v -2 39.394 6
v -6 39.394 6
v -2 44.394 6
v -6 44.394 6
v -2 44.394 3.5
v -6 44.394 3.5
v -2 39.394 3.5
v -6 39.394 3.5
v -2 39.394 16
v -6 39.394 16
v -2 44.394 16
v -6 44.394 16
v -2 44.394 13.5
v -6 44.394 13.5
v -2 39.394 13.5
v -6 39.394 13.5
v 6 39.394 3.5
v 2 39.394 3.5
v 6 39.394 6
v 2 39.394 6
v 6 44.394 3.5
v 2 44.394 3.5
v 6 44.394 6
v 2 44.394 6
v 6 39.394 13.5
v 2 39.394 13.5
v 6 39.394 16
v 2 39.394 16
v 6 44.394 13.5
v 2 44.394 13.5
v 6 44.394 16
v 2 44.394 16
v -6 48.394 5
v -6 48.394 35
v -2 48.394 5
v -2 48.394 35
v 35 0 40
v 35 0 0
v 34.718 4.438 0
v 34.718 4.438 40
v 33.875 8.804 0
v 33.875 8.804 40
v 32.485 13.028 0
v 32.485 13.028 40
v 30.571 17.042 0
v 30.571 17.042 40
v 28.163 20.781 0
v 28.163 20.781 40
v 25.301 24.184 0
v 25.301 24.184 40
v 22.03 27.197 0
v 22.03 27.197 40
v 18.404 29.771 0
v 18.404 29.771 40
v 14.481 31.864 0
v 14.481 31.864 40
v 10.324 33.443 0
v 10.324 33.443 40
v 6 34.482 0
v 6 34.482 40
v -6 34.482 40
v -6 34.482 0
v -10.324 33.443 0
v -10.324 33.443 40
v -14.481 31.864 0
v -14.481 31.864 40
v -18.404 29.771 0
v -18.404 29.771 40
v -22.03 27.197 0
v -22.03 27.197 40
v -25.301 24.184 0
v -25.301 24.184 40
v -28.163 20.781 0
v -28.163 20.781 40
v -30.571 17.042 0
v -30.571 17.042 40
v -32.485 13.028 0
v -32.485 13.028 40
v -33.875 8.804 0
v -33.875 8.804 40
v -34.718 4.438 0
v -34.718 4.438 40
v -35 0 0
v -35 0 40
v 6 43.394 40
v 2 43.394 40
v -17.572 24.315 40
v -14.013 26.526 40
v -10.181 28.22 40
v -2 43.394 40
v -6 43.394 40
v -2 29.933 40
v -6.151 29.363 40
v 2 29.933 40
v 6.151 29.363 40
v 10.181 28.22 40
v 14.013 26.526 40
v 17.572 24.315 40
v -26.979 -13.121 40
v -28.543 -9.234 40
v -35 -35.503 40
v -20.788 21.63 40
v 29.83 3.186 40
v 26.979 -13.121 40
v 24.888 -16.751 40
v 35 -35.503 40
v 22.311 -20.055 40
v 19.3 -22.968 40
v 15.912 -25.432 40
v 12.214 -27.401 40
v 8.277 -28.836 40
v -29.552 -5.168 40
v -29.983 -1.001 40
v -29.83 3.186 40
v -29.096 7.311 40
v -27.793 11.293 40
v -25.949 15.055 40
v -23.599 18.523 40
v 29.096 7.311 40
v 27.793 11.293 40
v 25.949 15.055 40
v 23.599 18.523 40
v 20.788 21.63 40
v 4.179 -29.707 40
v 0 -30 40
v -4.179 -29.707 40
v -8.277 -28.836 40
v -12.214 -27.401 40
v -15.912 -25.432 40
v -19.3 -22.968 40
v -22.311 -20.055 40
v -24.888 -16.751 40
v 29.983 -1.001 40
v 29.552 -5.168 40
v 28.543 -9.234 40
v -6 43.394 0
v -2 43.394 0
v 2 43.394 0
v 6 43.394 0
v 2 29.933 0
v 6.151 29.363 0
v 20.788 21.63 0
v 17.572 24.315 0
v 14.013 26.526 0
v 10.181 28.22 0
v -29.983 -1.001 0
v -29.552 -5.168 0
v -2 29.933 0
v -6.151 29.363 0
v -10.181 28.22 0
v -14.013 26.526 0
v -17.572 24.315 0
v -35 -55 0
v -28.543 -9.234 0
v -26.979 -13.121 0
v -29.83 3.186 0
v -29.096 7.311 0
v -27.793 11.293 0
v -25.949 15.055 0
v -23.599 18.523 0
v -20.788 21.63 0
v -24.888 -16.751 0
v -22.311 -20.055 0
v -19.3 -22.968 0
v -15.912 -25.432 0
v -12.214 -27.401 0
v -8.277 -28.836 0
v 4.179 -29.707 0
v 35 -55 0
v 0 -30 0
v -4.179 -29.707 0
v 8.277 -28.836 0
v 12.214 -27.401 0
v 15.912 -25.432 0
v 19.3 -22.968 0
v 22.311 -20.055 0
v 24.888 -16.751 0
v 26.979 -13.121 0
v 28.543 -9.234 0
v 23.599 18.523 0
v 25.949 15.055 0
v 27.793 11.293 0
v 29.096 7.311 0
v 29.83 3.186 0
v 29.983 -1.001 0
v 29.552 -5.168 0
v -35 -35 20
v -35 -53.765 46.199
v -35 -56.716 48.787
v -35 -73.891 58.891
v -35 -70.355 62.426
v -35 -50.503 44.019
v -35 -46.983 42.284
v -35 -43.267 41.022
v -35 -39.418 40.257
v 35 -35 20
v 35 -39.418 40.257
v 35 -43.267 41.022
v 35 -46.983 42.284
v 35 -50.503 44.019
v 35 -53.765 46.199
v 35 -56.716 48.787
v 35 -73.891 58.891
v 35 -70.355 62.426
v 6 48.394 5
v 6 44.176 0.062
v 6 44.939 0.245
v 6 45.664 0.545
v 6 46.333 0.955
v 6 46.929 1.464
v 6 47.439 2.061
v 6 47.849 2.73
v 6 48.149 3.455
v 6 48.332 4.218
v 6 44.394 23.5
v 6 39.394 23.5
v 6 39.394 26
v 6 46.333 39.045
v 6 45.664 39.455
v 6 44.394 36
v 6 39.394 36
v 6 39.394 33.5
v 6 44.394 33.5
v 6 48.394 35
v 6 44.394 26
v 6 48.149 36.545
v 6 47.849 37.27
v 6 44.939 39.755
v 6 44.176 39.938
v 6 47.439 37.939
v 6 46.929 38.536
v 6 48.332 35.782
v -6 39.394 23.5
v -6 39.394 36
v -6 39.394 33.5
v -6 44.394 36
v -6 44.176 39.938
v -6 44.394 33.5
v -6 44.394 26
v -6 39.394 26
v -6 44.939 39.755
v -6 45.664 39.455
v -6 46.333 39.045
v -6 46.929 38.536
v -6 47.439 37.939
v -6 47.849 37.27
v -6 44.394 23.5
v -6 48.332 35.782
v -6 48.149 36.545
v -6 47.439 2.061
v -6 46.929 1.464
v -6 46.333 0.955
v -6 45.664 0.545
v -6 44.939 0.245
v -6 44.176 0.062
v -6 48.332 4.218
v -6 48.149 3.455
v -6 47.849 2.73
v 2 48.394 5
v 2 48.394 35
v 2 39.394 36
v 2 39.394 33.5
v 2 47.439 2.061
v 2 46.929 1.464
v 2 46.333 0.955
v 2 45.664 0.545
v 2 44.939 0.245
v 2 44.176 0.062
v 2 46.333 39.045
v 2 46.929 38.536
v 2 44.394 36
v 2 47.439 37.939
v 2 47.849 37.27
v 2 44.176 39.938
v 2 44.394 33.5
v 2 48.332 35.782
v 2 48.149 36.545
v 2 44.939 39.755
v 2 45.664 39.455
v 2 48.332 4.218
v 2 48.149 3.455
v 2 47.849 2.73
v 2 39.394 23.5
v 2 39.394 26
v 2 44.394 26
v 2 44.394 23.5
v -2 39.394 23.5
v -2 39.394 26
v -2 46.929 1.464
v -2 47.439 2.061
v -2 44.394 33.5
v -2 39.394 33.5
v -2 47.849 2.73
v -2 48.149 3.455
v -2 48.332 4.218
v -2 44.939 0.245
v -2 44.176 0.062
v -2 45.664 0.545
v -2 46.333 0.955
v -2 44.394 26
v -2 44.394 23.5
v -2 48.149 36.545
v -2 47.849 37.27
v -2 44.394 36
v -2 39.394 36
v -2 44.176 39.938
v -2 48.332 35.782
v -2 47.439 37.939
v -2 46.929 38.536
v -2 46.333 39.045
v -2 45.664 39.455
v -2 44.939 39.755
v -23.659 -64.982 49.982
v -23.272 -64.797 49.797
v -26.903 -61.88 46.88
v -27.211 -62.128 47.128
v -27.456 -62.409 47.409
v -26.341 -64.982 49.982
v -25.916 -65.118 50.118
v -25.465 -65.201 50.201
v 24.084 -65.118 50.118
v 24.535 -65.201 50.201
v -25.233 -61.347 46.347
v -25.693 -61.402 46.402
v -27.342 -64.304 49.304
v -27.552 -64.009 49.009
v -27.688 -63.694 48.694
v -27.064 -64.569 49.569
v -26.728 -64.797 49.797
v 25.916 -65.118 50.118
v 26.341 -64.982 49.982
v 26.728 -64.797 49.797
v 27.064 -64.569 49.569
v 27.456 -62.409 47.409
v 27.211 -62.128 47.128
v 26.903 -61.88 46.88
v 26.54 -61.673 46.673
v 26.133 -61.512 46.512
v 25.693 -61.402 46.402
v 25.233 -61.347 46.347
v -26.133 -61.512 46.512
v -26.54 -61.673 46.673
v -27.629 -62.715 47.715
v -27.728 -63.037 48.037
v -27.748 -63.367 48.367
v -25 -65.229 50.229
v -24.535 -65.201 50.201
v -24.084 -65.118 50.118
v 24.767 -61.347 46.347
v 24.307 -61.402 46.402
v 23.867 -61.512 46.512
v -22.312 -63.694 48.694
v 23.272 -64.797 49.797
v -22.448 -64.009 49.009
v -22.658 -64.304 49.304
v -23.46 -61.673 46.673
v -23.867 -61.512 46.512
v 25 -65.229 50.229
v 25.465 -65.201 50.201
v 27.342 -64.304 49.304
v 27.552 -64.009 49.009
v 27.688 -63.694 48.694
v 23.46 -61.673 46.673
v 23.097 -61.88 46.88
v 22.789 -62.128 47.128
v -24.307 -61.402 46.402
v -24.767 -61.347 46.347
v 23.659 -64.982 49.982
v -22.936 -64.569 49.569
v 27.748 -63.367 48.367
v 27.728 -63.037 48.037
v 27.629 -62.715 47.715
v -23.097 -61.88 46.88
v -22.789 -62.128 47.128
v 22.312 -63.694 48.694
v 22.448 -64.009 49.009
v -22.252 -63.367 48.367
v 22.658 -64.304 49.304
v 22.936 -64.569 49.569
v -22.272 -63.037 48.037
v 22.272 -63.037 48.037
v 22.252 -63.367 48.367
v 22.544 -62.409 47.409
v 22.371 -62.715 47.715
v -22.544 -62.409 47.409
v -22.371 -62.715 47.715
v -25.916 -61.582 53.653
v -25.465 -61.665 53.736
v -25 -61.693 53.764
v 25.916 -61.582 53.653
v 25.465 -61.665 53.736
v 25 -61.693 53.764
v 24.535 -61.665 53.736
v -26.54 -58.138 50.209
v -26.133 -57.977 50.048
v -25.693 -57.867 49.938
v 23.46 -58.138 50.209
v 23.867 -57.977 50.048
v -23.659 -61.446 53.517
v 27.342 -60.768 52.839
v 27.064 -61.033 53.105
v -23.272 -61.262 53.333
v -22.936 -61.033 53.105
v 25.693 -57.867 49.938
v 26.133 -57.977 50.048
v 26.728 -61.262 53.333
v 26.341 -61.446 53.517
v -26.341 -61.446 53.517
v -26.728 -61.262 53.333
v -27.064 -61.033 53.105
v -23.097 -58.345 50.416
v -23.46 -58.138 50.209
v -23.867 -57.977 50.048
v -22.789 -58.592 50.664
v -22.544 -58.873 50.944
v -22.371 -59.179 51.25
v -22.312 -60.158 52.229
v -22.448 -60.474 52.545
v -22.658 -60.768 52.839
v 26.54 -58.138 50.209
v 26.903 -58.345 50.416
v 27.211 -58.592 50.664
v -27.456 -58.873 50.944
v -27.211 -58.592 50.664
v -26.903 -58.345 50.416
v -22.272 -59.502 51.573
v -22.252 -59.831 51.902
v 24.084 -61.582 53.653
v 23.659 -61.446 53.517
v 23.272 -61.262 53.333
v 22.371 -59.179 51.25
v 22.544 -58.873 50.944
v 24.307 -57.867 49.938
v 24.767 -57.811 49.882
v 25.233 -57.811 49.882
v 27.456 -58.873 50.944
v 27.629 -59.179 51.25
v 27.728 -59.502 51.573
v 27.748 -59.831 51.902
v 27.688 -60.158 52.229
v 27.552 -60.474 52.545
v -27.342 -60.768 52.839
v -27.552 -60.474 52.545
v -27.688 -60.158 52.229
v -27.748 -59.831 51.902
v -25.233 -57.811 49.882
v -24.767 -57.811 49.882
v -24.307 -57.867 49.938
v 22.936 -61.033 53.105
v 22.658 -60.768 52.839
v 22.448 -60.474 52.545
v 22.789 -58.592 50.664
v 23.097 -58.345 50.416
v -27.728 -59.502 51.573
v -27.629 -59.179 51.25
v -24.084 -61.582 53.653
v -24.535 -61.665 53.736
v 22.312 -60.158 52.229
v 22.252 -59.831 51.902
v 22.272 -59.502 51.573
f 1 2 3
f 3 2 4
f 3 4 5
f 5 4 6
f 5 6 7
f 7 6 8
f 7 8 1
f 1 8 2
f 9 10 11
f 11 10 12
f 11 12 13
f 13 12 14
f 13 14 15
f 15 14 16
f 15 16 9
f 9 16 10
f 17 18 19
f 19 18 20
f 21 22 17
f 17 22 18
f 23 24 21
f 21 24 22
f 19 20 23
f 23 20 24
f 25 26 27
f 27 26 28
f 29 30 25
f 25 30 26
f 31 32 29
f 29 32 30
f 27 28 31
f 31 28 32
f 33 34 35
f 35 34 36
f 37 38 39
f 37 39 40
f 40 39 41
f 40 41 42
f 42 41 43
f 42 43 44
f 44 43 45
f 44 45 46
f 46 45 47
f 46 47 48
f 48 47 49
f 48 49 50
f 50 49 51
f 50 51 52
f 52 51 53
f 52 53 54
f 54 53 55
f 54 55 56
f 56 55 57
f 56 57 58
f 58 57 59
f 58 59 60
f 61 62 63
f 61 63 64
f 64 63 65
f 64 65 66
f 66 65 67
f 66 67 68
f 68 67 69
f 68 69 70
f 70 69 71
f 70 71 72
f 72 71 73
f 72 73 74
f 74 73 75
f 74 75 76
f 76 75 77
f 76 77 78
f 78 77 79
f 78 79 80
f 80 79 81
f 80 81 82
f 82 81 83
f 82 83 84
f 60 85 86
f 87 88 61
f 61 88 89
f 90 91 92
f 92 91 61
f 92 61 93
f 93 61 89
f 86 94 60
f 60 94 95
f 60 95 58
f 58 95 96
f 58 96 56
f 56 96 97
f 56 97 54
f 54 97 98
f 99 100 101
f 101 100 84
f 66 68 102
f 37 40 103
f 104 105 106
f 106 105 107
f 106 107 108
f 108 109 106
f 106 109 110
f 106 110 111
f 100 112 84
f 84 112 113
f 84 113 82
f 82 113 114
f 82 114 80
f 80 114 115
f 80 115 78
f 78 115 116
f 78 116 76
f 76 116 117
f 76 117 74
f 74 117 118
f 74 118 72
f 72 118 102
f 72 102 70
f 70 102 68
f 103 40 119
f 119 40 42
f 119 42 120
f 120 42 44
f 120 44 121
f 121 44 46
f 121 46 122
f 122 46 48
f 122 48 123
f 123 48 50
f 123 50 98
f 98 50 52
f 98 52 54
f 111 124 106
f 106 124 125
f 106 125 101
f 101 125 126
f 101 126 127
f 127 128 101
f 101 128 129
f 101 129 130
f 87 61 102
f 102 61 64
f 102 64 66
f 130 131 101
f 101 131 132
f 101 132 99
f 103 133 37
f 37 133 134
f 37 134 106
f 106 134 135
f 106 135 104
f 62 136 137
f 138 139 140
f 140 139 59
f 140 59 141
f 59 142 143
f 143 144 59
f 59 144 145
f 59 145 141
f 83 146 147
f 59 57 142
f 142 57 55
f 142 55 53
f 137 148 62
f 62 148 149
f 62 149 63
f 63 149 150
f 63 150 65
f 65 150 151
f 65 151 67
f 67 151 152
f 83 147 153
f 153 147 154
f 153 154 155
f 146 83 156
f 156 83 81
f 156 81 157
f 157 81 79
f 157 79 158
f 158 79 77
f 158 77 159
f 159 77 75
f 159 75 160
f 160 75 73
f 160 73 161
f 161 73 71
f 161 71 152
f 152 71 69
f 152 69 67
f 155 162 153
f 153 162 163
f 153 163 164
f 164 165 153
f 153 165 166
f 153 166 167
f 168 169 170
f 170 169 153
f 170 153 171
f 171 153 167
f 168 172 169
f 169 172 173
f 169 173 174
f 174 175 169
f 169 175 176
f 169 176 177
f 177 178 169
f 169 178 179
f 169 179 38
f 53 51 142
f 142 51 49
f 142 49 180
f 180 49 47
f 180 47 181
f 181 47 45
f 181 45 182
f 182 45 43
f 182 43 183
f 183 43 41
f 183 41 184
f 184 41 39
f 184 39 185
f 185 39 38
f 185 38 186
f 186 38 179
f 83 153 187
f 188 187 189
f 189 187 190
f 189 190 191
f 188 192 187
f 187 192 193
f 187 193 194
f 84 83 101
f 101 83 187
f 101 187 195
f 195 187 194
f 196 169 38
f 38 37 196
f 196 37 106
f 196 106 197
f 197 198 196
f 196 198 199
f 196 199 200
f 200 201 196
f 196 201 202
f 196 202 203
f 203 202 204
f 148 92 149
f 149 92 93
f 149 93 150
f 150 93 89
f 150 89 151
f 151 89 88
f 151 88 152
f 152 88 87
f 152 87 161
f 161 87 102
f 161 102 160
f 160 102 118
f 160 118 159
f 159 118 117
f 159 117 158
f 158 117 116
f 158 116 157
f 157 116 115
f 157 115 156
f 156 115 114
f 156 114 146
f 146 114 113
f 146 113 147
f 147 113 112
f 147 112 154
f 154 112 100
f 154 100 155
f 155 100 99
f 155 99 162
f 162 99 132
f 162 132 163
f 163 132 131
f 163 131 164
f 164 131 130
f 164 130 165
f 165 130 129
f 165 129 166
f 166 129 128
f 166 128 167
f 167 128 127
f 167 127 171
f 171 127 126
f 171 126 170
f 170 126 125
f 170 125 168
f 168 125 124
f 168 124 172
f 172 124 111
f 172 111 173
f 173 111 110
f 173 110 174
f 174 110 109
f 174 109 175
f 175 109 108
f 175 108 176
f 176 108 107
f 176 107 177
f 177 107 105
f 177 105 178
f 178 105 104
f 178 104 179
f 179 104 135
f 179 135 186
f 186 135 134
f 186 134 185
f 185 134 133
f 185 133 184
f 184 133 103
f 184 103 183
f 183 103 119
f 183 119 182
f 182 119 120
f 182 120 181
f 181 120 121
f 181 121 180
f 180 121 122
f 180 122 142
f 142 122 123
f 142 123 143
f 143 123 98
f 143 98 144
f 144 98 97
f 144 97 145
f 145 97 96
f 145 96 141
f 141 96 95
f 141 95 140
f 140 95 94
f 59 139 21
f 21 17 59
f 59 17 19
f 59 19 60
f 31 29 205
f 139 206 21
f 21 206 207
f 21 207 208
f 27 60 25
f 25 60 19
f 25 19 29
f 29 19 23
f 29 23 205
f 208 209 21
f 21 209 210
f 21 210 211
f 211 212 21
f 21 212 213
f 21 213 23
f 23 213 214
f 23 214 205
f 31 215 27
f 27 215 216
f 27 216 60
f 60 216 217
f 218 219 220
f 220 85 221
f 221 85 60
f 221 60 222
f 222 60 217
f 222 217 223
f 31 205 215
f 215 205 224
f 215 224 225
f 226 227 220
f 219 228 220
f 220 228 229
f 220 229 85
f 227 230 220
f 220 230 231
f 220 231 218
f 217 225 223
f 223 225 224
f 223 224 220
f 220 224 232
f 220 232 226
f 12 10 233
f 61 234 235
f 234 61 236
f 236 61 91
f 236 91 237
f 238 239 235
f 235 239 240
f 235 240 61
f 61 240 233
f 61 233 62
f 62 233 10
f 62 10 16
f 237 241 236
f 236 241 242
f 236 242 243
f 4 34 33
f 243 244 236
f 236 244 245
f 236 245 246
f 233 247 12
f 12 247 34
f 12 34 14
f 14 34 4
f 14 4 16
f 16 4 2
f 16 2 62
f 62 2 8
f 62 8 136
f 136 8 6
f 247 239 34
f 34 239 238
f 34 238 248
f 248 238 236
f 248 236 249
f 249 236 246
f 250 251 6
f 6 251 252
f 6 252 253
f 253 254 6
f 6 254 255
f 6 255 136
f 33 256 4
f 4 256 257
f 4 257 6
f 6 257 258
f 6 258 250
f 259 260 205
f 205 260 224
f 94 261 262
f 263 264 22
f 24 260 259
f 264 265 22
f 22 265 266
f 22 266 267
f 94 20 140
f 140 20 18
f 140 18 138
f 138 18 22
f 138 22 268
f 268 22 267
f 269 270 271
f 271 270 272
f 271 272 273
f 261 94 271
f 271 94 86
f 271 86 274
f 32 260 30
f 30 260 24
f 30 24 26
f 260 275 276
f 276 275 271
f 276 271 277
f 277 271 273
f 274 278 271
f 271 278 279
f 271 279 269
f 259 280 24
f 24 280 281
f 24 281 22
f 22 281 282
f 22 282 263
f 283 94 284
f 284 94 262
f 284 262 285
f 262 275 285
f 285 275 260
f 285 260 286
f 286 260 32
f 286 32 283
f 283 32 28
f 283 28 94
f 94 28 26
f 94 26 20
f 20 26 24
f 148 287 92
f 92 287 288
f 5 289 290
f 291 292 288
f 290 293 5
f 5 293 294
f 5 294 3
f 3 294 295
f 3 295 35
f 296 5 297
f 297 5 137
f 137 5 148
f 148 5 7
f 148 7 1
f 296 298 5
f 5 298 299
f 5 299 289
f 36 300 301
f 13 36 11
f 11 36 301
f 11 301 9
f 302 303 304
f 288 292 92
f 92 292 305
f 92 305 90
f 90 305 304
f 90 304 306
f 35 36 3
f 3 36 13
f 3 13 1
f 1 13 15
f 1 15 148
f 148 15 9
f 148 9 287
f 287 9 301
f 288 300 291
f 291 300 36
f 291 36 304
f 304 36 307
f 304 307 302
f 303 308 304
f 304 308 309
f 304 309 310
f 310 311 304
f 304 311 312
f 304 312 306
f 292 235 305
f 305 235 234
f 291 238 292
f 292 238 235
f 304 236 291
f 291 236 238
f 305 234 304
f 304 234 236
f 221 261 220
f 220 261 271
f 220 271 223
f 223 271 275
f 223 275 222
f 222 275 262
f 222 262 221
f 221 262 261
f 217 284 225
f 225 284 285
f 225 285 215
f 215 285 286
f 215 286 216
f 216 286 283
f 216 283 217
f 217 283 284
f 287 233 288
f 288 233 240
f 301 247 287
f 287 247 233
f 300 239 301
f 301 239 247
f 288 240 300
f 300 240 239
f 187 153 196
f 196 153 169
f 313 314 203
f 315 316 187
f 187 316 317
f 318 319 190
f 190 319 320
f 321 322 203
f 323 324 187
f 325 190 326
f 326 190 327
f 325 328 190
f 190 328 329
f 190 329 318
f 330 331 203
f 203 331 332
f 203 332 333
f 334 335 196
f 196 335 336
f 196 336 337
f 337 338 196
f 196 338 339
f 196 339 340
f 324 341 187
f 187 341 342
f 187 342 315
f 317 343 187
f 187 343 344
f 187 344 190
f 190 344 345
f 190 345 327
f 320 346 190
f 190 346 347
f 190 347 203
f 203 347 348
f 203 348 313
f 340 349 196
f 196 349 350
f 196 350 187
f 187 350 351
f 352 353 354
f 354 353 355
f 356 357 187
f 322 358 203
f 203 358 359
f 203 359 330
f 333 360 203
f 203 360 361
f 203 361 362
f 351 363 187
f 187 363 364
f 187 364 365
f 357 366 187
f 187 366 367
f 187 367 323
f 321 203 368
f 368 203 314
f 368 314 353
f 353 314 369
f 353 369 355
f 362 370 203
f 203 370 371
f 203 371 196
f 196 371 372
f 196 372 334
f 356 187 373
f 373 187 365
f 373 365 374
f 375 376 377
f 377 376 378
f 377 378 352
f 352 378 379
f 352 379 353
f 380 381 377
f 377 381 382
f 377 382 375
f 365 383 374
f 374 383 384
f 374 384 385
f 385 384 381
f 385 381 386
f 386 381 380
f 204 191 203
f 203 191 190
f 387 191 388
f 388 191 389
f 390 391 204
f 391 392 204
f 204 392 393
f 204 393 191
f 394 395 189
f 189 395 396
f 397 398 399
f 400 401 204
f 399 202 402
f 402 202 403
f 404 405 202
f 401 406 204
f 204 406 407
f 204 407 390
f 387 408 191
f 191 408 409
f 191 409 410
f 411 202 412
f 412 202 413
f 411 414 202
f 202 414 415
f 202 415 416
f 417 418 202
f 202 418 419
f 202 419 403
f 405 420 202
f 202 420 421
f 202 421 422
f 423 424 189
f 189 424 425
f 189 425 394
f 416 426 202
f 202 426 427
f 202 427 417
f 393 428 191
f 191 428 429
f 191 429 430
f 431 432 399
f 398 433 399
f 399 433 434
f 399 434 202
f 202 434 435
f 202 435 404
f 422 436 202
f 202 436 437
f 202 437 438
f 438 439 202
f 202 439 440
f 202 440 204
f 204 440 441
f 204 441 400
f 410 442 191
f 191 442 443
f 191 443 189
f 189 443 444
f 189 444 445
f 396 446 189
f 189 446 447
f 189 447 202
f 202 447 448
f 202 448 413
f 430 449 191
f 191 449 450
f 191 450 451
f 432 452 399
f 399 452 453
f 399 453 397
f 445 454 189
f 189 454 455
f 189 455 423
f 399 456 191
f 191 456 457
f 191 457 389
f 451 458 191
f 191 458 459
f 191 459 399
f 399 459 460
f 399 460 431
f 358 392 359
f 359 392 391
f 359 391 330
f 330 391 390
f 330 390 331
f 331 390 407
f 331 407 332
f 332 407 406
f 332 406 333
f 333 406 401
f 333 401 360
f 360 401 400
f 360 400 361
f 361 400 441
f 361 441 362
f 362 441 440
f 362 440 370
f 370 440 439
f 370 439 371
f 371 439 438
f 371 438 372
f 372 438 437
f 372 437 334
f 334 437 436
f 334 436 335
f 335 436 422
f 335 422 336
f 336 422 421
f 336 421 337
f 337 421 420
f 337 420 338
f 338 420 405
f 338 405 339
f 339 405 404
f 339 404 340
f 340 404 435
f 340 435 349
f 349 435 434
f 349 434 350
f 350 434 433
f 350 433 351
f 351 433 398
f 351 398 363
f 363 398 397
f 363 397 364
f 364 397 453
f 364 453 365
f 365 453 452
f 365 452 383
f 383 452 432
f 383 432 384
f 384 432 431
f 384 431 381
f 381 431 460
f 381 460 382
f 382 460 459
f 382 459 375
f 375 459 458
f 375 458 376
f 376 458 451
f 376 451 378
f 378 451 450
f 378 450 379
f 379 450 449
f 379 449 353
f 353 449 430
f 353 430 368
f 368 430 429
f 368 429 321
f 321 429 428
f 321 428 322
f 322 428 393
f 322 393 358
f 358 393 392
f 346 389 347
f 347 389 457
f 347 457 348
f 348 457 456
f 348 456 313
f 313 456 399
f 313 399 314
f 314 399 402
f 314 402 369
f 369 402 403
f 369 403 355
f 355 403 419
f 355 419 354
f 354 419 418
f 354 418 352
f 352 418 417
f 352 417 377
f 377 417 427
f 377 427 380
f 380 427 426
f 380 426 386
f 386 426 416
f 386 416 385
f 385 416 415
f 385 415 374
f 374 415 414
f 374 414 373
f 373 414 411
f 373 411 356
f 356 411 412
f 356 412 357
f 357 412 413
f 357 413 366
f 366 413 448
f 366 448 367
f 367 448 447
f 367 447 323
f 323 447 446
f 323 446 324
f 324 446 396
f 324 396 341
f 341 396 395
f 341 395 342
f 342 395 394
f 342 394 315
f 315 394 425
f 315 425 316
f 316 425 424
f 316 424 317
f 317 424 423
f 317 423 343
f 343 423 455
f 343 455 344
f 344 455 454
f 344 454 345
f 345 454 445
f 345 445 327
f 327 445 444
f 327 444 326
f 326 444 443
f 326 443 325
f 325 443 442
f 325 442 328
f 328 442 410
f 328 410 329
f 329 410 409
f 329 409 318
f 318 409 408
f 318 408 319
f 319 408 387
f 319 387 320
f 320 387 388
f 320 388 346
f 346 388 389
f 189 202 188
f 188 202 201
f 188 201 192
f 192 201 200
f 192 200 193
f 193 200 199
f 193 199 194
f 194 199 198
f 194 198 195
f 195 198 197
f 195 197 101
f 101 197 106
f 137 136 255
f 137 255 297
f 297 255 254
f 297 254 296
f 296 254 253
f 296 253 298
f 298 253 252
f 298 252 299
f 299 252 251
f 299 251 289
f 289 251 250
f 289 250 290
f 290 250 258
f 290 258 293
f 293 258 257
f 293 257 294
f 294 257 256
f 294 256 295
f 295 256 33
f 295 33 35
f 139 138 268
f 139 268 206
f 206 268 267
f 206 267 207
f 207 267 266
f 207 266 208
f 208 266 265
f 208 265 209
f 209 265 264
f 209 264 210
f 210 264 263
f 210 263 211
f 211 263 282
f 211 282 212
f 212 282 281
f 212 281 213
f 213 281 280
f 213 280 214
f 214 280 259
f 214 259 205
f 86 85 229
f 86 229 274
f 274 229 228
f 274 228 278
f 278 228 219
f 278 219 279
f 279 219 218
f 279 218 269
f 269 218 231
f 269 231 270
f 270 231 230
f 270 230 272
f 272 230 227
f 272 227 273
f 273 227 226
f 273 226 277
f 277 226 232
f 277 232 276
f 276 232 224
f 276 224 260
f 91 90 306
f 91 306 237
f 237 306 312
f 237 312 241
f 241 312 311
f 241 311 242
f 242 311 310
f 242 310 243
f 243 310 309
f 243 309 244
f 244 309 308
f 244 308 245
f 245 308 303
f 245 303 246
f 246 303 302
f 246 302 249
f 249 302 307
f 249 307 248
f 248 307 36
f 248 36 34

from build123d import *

# Parameters (mm, degrees)
ESQUISSE1_R                = 35
BOSS_EXTRU_1_DEPTH         = 40
ESQUISSE6_W                = 70
ESQUISSE6_H                = 40
BOSS_EXTRU_3_DEPTH         = 70
ESQUISSE2_R                = 30
ENL_V_MAT_EXTRU_1_DEPTH    = 40
BOSS_EXTRU_2_START         = 40
BOSS_EXTRU_2_DEPTH         = 40
ESQUISSE4_W                = 4
ESQUISSE4_H                = 20
ENL_V_MAT_EXTRU_2_DEPTH    = 40
ESQUISSE5_W                = 2.5
ESQUISSE5_H                = 5
ENL_V_MAT_EXTRU_3_DEPTH    = 91.44888059
R_P_TITION_LIN_AIRE1_COUNT = 4
R_P_TITION_LIN_AIRE1_PITCH = 10
ENL_V_MAT_EXTRU_4_DEPTH    = 107.77078252
ESQUISSE8_W                = 70
ESQUISSE8_H                = 55
BOSS_EXTRU_4_DEPTH         = 5
D_GAGEMENT_M51_D           = 5.5
CONG_1_R                   = 30
CONG_2_R                   = 5


with BuildPart() as part:
    # Esquisse1 → Boss.-Extru.1 (new body)
    with BuildSketch(Plane.XY):
        Circle(ESQUISSE1_R)
    extrude(amount=BOSS_EXTRU_1_DEPTH)

    # Esquisse6 → Boss.-Extru.3 (add)
    with BuildSketch(Plane(origin=(0, 0, 0), x_dir=(1, 0, 0), z_dir=(0, 1, 0))):
        with Locations((0, -20)):
            Rectangle(ESQUISSE6_W, ESQUISSE6_H)
    extrude(amount=-BOSS_EXTRU_3_DEPTH)

    # Esquisse2 → Enlèv. mat.-Extru.1 (cut)
    with BuildSketch(Plane.XY.offset(40)):
        Circle(ESQUISSE2_R)
    extrude(amount=-ENL_V_MAT_EXTRU_1_DEPTH, mode=Mode.SUBTRACT)

    # Esquisse3 → Boss.-Extru.2 (add)
    with BuildSketch(Plane.XY.offset(BOSS_EXTRU_2_START)):
        with BuildLine():
            Line((-6, 29.393876913), (-6, 48.393876913))
            Line((-6, 48.393876913), (6, 48.393876913))
            Line((6, 48.393876913), (6, 29.393876913))
            ThreePointArc((6, 29.393876913), (0, 30), (-6, 29.393876913))
        make_face()
    extrude(amount=-BOSS_EXTRU_2_DEPTH)

    # Esquisse4 → Enlèv. mat.-Extru.2 (cut)
    with BuildSketch(Plane.XY.offset(40)):
        with Locations((0, 38.393876913)):
            Rectangle(ESQUISSE4_W, ESQUISSE4_H)
    extrude(amount=-ENL_V_MAT_EXTRU_2_DEPTH, mode=Mode.SUBTRACT)

    # Esquisse5 → Enlèv. mat.-Extru.3 (cut, through all)
    with BuildSketch(Plane(origin=(6, 0, 0), x_dir=(0, 0, -1), z_dir=(1, 0, 0))):
        with Locations((-34.75, 41.893876913)):
            Rectangle(ESQUISSE5_W, ESQUISSE5_H)
    enl_v_mat_extru_3 = extrude(amount=-ENL_V_MAT_EXTRU_3_DEPTH, mode=Mode.SUBTRACT)

    # Répétition linéaire1: Enlèv. mat.-Extru.3 ×4
    with Locations(*[(0, 0, -i * R_P_TITION_LIN_AIRE1_PITCH) for i in range(1, R_P_TITION_LIN_AIRE1_COUNT)]):
        add(enl_v_mat_extru_3, mode=Mode.SUBTRACT)

    # Esquisse7 → Enlèv. mat.-Extru.4 (cut, through all)
    with BuildSketch(Plane.ZY.offset(35)):
        Polygon((-15, -70), (20, -35), (55, -70), align=None)
    extrude(amount=-ENL_V_MAT_EXTRU_4_DEPTH, mode=Mode.SUBTRACT)

    # Esquisse8 → Boss.-Extru.4 (add)
    with BuildSketch(Plane(origin=(0, -7.5, -7.5), x_dir=(1, 0, 0), z_dir=(0, -0.7071067811865515, -0.7071067811865436))):
        with Locations((0, 66.390872965)):
            Rectangle(ESQUISSE8_W, ESQUISSE8_H)
    extrude(amount=-BOSS_EXTRU_4_DEPTH)

    # Dégagement M51 (through all)
    with Locations(Plane(origin=(0, -3.964466094, -3.964466094), x_dir=(1, 0, 0), z_dir=(0, 0.7071067811865517, 0.7071067811865435))):
        with Locations((-25, -78.890872965), (25, -78.890872965)):
            Hole(D_GAGEMENT_M51_D / 2)

    # Congé1
    cong_1_edges = [part.edges().sort_by_distance(p)[0] for p in [
        (0, -47.928932188, 40),
    ]]
    fillet(cong_1_edges, radius=CONG_1_R)

    # Congé2
    cong_2_edges = [part.edges().sort_by_distance(p)[0] for p in [
        (4, 48.393876913, 40),
        (4, 48.393876913, 0),
        (-4, 48.393876913, 0),
        (-4, 48.393876913, 40),
    ]]
    fillet(cong_2_edges, radius=CONG_2_R)


solid = part.part
